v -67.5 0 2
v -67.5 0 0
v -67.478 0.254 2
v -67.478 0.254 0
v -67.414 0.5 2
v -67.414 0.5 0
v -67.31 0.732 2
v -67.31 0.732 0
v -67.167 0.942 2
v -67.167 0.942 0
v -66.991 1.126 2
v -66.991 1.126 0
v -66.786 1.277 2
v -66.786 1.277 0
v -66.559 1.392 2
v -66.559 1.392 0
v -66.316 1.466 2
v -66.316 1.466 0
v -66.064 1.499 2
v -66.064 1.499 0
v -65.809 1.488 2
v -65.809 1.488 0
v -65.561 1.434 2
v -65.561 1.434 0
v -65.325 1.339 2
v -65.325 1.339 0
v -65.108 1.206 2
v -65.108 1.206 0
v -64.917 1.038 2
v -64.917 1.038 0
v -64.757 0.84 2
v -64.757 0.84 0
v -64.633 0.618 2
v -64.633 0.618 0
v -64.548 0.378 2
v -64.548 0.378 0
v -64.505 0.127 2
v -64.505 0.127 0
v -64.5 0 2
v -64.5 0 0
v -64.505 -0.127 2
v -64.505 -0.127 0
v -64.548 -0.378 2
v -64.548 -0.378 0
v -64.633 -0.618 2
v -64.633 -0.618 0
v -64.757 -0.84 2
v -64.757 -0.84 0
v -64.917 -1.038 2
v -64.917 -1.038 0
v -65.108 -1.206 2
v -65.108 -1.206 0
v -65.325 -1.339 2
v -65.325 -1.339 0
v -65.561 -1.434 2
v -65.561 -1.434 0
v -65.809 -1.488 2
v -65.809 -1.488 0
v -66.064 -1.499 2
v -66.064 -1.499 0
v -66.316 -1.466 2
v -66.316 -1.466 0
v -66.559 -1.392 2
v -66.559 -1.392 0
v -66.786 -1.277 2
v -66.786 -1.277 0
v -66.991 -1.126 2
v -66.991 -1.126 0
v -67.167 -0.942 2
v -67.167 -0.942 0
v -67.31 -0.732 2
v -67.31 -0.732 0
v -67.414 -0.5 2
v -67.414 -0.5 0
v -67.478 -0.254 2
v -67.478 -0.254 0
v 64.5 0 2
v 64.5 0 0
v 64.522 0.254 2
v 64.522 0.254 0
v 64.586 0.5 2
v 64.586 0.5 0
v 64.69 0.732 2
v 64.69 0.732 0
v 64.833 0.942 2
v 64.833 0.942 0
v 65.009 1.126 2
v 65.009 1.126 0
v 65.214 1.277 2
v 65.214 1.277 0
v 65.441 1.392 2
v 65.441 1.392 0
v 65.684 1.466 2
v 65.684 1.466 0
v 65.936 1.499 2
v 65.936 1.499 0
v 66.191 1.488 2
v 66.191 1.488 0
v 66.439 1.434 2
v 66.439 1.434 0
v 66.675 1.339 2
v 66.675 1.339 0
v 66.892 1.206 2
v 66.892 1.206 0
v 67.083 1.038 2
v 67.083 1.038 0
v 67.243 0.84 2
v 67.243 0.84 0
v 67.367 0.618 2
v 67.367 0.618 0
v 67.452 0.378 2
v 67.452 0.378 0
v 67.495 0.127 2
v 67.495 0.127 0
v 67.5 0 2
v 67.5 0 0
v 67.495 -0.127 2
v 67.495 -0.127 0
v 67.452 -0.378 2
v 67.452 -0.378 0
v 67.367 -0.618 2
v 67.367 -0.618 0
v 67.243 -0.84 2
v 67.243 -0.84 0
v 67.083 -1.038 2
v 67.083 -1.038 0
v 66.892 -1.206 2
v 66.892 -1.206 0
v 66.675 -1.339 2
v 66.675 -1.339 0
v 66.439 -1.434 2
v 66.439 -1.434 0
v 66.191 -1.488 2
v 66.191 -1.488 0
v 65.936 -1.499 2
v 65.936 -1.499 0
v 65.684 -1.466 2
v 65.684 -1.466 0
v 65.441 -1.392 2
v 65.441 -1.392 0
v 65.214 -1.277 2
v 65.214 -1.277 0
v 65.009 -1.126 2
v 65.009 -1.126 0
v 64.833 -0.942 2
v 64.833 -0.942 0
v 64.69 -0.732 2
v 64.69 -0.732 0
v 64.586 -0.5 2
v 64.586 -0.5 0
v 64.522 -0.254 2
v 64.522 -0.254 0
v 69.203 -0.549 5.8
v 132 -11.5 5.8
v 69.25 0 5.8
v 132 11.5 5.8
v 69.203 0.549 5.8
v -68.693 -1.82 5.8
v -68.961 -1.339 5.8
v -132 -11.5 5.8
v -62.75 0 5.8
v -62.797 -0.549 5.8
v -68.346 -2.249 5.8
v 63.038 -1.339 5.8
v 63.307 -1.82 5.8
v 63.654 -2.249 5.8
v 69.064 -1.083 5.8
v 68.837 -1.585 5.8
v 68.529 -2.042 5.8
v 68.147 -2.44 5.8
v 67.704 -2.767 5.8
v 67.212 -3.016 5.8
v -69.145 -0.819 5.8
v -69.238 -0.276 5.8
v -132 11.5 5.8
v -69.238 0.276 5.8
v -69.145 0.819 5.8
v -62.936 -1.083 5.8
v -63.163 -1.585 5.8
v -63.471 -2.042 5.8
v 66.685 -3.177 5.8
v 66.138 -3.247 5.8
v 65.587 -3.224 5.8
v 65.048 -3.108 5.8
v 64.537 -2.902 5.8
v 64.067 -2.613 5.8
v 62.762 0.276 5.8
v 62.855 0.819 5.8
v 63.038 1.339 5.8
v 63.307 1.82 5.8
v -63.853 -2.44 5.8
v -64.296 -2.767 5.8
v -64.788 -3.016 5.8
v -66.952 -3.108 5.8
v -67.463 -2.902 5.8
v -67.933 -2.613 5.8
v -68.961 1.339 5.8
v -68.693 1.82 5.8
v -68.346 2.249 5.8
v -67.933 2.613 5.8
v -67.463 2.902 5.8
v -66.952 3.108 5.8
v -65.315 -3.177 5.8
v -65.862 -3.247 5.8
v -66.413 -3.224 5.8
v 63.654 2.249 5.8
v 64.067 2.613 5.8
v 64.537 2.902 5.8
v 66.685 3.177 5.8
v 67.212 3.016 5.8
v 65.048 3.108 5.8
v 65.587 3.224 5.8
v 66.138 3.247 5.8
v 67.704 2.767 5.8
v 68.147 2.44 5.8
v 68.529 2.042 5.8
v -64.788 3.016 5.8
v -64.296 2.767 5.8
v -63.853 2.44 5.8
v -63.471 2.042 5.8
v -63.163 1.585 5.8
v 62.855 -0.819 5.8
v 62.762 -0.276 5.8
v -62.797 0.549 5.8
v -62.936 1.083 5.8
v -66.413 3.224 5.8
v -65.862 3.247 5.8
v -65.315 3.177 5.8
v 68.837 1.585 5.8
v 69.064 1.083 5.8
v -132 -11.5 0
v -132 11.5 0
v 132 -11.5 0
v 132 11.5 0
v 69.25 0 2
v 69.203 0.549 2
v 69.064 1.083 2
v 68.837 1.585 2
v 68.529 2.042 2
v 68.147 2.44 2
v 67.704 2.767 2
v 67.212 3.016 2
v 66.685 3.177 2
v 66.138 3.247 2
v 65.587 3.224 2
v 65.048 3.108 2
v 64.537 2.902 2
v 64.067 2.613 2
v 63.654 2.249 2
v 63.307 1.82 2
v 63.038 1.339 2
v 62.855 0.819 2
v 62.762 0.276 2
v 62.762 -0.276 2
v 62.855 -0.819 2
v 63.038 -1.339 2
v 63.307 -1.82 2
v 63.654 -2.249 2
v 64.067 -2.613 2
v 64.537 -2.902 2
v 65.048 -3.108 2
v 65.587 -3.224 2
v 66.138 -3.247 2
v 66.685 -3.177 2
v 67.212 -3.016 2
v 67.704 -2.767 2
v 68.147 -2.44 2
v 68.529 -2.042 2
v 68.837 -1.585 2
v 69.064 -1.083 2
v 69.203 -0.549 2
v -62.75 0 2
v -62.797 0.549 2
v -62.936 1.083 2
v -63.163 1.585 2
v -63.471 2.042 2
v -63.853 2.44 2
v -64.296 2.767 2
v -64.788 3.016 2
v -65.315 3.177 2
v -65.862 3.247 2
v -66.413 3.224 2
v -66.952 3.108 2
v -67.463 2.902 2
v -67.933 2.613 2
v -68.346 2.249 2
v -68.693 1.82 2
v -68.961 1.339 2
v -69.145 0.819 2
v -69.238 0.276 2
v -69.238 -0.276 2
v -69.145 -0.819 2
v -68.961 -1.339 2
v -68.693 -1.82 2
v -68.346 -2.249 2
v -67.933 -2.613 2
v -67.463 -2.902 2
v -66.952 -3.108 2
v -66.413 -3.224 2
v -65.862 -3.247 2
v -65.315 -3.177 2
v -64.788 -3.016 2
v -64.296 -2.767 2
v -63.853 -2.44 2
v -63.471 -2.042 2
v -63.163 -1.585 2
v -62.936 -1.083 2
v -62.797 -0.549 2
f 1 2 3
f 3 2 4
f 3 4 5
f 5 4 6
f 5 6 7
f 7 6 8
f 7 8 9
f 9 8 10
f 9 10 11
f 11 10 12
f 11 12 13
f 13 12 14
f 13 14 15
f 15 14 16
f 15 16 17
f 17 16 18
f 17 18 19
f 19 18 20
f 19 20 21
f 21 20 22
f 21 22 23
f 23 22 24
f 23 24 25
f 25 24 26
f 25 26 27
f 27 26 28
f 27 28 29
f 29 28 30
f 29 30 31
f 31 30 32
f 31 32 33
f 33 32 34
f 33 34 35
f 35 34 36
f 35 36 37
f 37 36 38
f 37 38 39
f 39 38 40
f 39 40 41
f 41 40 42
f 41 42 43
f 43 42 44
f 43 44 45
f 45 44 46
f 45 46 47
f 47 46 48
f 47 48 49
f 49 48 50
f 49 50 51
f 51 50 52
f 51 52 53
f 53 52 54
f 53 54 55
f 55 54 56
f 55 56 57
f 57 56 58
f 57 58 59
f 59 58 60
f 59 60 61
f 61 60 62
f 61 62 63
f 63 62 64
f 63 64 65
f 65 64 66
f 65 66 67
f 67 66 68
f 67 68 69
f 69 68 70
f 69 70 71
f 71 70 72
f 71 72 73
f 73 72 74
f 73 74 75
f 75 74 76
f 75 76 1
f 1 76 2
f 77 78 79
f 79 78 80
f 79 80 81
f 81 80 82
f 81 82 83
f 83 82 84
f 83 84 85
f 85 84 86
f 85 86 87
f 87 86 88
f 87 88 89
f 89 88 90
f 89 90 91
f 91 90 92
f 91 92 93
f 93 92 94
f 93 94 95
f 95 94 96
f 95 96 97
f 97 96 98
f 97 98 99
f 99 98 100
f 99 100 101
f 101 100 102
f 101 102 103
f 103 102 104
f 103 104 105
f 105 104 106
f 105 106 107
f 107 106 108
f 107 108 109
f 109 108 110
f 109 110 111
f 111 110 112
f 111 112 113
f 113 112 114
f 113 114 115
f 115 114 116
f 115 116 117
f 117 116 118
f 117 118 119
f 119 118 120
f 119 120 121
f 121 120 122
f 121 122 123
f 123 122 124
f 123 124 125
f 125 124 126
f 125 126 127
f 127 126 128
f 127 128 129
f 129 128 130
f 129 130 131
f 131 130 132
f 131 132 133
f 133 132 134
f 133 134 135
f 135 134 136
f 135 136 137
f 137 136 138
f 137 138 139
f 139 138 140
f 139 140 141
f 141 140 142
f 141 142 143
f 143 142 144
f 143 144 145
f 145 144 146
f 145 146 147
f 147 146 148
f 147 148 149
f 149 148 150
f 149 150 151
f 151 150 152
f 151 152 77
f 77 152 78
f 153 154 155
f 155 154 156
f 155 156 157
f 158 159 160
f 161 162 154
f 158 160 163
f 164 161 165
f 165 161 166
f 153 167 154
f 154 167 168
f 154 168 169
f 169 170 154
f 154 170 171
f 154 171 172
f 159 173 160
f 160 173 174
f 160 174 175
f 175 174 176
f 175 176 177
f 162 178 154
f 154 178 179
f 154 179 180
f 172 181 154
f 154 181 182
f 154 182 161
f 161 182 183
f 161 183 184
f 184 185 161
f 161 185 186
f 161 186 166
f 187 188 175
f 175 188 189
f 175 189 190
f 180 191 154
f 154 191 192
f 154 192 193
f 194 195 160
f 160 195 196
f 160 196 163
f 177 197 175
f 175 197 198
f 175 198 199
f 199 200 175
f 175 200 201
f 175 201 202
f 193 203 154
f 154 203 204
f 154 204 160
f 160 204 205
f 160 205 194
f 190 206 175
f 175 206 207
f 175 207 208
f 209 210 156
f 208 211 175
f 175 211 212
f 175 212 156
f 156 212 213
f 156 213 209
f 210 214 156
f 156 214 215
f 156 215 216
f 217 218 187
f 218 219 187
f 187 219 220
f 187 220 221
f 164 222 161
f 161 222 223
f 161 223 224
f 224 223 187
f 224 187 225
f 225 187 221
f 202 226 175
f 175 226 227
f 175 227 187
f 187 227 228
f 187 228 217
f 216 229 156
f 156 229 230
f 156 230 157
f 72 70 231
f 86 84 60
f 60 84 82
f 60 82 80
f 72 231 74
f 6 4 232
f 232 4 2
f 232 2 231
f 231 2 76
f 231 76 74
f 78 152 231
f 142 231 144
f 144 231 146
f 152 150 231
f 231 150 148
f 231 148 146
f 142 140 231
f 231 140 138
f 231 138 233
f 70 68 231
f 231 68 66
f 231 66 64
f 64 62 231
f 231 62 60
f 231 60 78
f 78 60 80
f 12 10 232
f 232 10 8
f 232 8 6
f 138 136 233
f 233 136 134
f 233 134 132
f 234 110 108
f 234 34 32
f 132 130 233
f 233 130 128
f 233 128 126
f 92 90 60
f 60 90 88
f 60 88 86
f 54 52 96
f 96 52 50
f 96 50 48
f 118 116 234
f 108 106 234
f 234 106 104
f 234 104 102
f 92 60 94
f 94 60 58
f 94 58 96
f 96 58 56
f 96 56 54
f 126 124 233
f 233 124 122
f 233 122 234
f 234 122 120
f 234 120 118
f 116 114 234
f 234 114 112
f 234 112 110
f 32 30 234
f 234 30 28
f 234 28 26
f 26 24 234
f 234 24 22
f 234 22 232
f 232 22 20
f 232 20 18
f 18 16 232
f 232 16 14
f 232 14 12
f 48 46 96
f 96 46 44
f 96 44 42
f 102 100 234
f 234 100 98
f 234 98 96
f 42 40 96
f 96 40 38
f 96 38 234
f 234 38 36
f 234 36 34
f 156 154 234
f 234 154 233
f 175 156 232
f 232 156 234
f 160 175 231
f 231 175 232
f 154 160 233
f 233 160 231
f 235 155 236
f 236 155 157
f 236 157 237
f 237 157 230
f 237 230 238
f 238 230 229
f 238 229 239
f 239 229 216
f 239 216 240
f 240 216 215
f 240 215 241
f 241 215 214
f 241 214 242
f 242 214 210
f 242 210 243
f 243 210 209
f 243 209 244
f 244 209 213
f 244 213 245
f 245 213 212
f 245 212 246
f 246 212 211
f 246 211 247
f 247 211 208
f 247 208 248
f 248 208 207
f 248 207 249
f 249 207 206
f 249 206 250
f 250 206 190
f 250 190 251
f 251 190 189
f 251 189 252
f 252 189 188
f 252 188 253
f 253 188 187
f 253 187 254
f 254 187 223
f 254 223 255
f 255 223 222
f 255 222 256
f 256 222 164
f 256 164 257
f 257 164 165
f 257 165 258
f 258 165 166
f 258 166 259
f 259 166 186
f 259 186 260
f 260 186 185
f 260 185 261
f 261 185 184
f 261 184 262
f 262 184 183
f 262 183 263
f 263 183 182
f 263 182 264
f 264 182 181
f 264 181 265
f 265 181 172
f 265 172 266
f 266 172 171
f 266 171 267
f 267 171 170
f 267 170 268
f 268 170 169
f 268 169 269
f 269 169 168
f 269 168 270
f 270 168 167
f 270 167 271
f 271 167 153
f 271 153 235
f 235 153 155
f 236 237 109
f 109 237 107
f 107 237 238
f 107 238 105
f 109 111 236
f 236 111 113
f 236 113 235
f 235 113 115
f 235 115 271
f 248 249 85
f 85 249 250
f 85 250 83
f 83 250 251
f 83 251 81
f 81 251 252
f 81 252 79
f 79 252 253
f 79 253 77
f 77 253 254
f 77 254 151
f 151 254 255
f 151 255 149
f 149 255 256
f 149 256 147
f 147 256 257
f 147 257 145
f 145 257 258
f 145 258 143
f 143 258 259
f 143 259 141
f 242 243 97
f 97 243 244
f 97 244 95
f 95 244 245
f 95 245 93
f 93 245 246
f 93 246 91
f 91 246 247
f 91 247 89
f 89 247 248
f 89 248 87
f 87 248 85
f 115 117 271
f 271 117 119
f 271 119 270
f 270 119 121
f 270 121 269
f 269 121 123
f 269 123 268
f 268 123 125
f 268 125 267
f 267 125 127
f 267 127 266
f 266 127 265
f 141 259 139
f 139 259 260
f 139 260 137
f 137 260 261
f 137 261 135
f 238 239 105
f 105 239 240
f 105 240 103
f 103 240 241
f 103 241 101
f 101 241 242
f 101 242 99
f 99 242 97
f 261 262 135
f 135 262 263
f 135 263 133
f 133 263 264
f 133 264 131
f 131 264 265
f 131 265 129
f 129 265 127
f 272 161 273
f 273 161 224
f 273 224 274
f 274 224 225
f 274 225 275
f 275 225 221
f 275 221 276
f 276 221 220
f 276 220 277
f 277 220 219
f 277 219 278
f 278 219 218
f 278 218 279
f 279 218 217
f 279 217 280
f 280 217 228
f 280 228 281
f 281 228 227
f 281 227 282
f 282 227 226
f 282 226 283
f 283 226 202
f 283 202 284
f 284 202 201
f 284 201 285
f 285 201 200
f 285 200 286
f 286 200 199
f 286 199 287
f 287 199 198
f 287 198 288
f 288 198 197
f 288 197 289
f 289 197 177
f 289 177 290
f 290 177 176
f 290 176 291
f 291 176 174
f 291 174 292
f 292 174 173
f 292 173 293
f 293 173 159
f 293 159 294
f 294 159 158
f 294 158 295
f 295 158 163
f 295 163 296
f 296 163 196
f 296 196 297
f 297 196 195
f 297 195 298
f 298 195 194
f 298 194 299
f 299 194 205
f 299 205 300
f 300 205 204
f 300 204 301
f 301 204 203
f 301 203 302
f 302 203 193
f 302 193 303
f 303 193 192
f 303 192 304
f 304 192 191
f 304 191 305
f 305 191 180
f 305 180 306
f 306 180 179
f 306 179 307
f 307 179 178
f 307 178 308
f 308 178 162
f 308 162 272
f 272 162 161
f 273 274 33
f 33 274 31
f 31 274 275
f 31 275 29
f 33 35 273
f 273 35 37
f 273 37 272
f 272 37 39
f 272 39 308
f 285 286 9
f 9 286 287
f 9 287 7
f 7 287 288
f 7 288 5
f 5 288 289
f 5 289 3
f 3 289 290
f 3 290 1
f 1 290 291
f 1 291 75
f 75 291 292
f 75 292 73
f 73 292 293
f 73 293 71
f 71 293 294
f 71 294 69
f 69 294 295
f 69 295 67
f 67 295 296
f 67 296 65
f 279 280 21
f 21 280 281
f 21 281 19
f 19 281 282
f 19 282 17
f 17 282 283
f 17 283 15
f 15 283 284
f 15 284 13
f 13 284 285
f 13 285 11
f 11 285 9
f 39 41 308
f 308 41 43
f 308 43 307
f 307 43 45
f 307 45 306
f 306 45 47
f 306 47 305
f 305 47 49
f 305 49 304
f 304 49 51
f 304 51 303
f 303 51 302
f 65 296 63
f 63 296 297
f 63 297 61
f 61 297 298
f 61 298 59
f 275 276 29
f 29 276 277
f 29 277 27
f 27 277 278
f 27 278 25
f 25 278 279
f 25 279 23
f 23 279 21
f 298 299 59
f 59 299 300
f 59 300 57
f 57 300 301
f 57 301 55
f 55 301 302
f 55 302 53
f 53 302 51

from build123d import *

# Parameters (mm, degrees)
SKETCH1_W           = 264
SKETCH1_H           = 23
SKETCH1_R           = 1.5
BOSS_EXTRUDE1_DEPTH = 5.8
SKETCH2_R           = 3.25
CUT_EXTRUDE1_DEPTH  = 3.8


with BuildPart() as part:
    # Sketch1 → Boss-Extrude1 (new body)
    with BuildSketch(Plane.XY):
        Rectangle(SKETCH1_W, SKETCH1_H)
        with Locations((-66, 0)):
            Circle(SKETCH1_R, mode=Mode.SUBTRACT)
        with Locations((66, 0)):
            Circle(SKETCH1_R, mode=Mode.SUBTRACT)
    extrude(amount=BOSS_EXTRUDE1_DEPTH)

    # Sketch2 → Cut-Extrude1 (cut)
    with BuildSketch(Plane.XY.offset(5.8)):
        with Locations((-66, 0)):
            Circle(SKETCH2_R)
        with Locations((66, 0)):
            Circle(SKETCH2_R)
    extrude(amount=-CUT_EXTRUDE1_DEPTH, mode=Mode.SUBTRACT)


solid = part.part
